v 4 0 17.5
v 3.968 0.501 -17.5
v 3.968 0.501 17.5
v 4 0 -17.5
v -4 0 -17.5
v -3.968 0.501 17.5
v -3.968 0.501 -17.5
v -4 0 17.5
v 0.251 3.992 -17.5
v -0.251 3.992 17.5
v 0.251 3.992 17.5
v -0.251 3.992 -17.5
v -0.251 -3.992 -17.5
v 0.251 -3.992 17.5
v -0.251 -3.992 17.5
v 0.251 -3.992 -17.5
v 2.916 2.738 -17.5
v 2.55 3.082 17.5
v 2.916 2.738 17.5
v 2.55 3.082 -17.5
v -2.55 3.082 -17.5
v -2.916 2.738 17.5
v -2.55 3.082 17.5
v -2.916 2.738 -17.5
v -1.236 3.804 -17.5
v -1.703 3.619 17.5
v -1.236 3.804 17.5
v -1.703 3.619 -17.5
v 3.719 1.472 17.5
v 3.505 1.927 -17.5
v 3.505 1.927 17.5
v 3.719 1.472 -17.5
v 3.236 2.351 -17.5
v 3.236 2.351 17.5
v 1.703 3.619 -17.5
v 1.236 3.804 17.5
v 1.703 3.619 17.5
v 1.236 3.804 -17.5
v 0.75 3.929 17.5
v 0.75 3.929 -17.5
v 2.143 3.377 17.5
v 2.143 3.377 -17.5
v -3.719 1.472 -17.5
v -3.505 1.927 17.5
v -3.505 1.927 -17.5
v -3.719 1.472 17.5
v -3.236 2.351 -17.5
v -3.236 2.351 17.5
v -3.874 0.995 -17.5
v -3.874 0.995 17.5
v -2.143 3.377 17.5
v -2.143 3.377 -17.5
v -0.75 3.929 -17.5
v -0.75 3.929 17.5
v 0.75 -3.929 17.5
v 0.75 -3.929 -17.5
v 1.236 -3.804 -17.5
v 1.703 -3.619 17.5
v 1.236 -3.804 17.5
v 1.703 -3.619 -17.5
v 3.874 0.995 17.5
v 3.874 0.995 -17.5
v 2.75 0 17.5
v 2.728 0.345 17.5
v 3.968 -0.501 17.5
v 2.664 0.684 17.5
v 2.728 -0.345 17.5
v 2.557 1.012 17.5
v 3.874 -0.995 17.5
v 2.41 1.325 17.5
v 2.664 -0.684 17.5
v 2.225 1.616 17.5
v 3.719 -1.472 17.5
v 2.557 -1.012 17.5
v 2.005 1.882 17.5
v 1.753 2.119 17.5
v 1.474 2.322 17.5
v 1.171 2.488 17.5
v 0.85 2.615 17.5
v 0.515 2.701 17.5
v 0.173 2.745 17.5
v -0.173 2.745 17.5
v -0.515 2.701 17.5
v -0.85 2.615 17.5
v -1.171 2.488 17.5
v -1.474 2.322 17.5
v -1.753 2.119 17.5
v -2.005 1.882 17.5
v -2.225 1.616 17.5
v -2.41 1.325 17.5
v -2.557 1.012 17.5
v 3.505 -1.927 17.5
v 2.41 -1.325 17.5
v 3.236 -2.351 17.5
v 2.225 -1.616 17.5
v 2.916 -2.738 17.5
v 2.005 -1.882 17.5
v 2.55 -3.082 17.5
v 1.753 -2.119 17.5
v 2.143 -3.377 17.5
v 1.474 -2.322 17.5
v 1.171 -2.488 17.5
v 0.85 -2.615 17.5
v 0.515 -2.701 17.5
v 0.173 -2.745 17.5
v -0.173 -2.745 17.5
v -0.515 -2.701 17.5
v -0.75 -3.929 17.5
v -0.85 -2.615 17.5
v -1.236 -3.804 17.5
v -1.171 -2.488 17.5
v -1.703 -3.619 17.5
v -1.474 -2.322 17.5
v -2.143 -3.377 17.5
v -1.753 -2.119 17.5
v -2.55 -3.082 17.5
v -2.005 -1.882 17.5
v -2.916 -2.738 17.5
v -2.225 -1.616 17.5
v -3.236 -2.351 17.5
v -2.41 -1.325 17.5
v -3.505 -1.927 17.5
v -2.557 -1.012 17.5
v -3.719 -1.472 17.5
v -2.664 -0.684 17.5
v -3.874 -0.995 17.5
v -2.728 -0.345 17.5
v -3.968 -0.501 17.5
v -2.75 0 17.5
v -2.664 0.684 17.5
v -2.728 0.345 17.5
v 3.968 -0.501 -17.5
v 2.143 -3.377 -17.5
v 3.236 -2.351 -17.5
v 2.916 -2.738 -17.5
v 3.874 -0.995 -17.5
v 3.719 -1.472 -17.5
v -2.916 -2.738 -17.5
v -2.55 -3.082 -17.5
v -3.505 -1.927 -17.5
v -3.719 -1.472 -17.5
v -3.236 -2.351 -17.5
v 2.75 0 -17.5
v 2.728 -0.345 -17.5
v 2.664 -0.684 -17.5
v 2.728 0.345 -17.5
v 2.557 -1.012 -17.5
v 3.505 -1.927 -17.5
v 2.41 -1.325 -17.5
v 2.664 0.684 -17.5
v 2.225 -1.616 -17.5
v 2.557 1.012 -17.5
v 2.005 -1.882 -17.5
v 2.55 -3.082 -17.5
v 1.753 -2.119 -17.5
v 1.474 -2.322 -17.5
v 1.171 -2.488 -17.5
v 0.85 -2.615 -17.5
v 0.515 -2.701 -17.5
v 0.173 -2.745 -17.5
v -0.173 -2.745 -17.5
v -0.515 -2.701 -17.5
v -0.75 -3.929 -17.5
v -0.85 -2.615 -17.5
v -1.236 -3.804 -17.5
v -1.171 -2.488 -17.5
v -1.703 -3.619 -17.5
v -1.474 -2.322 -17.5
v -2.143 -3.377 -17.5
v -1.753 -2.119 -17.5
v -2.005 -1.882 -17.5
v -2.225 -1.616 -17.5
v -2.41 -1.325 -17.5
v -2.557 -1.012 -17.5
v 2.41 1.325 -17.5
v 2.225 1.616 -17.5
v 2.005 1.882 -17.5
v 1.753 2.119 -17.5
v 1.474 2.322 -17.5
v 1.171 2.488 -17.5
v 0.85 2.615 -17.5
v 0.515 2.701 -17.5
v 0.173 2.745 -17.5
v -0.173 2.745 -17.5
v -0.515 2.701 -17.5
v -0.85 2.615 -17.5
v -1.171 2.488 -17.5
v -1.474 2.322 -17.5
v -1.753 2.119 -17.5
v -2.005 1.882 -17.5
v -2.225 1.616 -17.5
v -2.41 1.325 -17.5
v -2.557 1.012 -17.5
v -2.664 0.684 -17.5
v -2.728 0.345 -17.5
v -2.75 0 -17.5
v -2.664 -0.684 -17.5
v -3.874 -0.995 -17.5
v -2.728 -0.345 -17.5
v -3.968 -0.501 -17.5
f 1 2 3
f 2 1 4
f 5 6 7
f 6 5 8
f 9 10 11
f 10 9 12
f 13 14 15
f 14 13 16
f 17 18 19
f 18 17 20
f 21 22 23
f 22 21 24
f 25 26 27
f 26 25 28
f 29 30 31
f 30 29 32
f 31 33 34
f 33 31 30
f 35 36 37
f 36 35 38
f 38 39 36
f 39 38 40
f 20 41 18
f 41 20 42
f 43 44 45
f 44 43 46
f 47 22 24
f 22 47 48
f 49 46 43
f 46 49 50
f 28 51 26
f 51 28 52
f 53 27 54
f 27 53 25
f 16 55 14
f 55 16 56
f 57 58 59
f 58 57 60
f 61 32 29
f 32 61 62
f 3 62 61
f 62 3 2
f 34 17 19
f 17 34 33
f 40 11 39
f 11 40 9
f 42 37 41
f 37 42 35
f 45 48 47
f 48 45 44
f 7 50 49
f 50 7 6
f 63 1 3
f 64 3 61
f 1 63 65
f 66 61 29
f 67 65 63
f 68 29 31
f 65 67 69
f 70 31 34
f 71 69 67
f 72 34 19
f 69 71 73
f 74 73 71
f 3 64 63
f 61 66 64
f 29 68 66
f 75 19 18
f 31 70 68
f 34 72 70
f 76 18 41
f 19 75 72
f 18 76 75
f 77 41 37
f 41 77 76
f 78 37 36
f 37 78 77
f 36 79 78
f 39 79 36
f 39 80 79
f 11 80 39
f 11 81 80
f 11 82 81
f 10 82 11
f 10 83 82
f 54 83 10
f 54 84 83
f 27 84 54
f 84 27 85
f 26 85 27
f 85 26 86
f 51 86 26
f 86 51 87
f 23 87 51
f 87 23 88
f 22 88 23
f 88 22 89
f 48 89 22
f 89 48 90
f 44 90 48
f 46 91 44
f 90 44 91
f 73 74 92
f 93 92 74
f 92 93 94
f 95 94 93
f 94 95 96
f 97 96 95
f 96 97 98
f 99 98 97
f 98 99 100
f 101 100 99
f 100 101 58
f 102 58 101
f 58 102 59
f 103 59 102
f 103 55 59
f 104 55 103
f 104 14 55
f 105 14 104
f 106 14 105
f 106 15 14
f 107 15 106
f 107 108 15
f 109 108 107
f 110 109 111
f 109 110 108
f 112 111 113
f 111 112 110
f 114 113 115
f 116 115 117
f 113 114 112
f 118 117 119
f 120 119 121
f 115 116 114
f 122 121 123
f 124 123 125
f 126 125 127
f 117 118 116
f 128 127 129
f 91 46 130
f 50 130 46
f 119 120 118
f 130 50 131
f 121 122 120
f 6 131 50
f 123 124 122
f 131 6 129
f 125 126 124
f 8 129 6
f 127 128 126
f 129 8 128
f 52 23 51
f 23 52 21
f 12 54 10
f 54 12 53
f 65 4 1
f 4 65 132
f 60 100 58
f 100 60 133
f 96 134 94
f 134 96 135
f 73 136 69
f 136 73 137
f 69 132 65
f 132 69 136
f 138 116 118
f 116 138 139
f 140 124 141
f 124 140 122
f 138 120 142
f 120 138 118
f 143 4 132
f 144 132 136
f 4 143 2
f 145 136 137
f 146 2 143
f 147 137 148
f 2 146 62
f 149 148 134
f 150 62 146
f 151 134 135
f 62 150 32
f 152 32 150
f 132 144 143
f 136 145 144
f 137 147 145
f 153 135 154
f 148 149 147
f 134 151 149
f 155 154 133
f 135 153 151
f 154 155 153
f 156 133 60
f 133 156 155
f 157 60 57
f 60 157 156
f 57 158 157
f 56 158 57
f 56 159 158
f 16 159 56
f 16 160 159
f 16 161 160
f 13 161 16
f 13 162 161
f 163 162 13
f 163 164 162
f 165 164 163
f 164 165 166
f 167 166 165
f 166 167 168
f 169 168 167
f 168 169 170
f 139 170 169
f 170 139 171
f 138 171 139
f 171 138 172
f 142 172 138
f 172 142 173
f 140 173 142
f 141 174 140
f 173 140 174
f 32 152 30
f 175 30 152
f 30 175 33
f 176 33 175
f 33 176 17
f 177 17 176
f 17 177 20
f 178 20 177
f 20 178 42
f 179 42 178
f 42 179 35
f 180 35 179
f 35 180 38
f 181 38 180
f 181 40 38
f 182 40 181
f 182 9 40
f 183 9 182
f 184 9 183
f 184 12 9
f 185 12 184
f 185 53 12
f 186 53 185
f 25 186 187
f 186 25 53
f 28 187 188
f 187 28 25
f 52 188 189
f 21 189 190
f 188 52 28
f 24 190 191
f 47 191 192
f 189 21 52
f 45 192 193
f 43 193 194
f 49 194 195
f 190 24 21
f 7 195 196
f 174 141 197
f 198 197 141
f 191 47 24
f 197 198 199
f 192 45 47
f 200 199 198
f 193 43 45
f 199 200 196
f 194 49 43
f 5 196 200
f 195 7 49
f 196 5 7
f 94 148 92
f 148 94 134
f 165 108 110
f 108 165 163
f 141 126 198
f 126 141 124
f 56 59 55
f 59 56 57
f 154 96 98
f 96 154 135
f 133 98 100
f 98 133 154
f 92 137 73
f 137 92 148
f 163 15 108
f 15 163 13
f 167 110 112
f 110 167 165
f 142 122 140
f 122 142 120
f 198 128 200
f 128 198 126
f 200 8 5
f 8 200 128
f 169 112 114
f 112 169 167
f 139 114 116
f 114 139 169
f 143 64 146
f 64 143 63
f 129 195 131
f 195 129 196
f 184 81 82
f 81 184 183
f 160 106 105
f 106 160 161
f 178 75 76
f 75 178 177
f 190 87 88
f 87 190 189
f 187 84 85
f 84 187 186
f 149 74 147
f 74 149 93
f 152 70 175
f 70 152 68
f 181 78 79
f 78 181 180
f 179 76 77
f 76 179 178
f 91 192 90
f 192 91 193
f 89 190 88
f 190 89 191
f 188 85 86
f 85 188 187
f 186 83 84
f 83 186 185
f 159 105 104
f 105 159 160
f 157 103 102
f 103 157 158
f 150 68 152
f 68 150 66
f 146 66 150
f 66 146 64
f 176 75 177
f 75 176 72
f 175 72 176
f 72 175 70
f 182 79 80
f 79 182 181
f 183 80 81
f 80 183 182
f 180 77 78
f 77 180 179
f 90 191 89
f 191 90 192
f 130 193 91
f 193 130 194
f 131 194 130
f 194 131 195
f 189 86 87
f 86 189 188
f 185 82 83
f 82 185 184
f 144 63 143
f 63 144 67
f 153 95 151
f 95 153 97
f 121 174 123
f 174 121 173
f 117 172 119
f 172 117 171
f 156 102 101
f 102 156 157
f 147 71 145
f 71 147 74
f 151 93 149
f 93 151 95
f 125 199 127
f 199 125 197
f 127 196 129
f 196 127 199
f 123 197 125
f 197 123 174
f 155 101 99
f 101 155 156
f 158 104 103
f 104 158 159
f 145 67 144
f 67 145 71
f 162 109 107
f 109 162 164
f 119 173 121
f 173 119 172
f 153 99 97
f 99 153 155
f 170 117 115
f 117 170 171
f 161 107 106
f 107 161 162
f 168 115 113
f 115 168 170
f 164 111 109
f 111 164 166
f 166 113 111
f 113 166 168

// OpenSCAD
$fn = 50;


difference() {
	union() {
		translate(v = [0, 0, -17.5000000000]) {
			cylinder(h = 35, r = 4.0000000000);
		}
	}
	union() {
		translate(v = [0, 0, -100.0000000000]) {
			cylinder(h = 200, r = 2.7500000000);
		}
	}
}
